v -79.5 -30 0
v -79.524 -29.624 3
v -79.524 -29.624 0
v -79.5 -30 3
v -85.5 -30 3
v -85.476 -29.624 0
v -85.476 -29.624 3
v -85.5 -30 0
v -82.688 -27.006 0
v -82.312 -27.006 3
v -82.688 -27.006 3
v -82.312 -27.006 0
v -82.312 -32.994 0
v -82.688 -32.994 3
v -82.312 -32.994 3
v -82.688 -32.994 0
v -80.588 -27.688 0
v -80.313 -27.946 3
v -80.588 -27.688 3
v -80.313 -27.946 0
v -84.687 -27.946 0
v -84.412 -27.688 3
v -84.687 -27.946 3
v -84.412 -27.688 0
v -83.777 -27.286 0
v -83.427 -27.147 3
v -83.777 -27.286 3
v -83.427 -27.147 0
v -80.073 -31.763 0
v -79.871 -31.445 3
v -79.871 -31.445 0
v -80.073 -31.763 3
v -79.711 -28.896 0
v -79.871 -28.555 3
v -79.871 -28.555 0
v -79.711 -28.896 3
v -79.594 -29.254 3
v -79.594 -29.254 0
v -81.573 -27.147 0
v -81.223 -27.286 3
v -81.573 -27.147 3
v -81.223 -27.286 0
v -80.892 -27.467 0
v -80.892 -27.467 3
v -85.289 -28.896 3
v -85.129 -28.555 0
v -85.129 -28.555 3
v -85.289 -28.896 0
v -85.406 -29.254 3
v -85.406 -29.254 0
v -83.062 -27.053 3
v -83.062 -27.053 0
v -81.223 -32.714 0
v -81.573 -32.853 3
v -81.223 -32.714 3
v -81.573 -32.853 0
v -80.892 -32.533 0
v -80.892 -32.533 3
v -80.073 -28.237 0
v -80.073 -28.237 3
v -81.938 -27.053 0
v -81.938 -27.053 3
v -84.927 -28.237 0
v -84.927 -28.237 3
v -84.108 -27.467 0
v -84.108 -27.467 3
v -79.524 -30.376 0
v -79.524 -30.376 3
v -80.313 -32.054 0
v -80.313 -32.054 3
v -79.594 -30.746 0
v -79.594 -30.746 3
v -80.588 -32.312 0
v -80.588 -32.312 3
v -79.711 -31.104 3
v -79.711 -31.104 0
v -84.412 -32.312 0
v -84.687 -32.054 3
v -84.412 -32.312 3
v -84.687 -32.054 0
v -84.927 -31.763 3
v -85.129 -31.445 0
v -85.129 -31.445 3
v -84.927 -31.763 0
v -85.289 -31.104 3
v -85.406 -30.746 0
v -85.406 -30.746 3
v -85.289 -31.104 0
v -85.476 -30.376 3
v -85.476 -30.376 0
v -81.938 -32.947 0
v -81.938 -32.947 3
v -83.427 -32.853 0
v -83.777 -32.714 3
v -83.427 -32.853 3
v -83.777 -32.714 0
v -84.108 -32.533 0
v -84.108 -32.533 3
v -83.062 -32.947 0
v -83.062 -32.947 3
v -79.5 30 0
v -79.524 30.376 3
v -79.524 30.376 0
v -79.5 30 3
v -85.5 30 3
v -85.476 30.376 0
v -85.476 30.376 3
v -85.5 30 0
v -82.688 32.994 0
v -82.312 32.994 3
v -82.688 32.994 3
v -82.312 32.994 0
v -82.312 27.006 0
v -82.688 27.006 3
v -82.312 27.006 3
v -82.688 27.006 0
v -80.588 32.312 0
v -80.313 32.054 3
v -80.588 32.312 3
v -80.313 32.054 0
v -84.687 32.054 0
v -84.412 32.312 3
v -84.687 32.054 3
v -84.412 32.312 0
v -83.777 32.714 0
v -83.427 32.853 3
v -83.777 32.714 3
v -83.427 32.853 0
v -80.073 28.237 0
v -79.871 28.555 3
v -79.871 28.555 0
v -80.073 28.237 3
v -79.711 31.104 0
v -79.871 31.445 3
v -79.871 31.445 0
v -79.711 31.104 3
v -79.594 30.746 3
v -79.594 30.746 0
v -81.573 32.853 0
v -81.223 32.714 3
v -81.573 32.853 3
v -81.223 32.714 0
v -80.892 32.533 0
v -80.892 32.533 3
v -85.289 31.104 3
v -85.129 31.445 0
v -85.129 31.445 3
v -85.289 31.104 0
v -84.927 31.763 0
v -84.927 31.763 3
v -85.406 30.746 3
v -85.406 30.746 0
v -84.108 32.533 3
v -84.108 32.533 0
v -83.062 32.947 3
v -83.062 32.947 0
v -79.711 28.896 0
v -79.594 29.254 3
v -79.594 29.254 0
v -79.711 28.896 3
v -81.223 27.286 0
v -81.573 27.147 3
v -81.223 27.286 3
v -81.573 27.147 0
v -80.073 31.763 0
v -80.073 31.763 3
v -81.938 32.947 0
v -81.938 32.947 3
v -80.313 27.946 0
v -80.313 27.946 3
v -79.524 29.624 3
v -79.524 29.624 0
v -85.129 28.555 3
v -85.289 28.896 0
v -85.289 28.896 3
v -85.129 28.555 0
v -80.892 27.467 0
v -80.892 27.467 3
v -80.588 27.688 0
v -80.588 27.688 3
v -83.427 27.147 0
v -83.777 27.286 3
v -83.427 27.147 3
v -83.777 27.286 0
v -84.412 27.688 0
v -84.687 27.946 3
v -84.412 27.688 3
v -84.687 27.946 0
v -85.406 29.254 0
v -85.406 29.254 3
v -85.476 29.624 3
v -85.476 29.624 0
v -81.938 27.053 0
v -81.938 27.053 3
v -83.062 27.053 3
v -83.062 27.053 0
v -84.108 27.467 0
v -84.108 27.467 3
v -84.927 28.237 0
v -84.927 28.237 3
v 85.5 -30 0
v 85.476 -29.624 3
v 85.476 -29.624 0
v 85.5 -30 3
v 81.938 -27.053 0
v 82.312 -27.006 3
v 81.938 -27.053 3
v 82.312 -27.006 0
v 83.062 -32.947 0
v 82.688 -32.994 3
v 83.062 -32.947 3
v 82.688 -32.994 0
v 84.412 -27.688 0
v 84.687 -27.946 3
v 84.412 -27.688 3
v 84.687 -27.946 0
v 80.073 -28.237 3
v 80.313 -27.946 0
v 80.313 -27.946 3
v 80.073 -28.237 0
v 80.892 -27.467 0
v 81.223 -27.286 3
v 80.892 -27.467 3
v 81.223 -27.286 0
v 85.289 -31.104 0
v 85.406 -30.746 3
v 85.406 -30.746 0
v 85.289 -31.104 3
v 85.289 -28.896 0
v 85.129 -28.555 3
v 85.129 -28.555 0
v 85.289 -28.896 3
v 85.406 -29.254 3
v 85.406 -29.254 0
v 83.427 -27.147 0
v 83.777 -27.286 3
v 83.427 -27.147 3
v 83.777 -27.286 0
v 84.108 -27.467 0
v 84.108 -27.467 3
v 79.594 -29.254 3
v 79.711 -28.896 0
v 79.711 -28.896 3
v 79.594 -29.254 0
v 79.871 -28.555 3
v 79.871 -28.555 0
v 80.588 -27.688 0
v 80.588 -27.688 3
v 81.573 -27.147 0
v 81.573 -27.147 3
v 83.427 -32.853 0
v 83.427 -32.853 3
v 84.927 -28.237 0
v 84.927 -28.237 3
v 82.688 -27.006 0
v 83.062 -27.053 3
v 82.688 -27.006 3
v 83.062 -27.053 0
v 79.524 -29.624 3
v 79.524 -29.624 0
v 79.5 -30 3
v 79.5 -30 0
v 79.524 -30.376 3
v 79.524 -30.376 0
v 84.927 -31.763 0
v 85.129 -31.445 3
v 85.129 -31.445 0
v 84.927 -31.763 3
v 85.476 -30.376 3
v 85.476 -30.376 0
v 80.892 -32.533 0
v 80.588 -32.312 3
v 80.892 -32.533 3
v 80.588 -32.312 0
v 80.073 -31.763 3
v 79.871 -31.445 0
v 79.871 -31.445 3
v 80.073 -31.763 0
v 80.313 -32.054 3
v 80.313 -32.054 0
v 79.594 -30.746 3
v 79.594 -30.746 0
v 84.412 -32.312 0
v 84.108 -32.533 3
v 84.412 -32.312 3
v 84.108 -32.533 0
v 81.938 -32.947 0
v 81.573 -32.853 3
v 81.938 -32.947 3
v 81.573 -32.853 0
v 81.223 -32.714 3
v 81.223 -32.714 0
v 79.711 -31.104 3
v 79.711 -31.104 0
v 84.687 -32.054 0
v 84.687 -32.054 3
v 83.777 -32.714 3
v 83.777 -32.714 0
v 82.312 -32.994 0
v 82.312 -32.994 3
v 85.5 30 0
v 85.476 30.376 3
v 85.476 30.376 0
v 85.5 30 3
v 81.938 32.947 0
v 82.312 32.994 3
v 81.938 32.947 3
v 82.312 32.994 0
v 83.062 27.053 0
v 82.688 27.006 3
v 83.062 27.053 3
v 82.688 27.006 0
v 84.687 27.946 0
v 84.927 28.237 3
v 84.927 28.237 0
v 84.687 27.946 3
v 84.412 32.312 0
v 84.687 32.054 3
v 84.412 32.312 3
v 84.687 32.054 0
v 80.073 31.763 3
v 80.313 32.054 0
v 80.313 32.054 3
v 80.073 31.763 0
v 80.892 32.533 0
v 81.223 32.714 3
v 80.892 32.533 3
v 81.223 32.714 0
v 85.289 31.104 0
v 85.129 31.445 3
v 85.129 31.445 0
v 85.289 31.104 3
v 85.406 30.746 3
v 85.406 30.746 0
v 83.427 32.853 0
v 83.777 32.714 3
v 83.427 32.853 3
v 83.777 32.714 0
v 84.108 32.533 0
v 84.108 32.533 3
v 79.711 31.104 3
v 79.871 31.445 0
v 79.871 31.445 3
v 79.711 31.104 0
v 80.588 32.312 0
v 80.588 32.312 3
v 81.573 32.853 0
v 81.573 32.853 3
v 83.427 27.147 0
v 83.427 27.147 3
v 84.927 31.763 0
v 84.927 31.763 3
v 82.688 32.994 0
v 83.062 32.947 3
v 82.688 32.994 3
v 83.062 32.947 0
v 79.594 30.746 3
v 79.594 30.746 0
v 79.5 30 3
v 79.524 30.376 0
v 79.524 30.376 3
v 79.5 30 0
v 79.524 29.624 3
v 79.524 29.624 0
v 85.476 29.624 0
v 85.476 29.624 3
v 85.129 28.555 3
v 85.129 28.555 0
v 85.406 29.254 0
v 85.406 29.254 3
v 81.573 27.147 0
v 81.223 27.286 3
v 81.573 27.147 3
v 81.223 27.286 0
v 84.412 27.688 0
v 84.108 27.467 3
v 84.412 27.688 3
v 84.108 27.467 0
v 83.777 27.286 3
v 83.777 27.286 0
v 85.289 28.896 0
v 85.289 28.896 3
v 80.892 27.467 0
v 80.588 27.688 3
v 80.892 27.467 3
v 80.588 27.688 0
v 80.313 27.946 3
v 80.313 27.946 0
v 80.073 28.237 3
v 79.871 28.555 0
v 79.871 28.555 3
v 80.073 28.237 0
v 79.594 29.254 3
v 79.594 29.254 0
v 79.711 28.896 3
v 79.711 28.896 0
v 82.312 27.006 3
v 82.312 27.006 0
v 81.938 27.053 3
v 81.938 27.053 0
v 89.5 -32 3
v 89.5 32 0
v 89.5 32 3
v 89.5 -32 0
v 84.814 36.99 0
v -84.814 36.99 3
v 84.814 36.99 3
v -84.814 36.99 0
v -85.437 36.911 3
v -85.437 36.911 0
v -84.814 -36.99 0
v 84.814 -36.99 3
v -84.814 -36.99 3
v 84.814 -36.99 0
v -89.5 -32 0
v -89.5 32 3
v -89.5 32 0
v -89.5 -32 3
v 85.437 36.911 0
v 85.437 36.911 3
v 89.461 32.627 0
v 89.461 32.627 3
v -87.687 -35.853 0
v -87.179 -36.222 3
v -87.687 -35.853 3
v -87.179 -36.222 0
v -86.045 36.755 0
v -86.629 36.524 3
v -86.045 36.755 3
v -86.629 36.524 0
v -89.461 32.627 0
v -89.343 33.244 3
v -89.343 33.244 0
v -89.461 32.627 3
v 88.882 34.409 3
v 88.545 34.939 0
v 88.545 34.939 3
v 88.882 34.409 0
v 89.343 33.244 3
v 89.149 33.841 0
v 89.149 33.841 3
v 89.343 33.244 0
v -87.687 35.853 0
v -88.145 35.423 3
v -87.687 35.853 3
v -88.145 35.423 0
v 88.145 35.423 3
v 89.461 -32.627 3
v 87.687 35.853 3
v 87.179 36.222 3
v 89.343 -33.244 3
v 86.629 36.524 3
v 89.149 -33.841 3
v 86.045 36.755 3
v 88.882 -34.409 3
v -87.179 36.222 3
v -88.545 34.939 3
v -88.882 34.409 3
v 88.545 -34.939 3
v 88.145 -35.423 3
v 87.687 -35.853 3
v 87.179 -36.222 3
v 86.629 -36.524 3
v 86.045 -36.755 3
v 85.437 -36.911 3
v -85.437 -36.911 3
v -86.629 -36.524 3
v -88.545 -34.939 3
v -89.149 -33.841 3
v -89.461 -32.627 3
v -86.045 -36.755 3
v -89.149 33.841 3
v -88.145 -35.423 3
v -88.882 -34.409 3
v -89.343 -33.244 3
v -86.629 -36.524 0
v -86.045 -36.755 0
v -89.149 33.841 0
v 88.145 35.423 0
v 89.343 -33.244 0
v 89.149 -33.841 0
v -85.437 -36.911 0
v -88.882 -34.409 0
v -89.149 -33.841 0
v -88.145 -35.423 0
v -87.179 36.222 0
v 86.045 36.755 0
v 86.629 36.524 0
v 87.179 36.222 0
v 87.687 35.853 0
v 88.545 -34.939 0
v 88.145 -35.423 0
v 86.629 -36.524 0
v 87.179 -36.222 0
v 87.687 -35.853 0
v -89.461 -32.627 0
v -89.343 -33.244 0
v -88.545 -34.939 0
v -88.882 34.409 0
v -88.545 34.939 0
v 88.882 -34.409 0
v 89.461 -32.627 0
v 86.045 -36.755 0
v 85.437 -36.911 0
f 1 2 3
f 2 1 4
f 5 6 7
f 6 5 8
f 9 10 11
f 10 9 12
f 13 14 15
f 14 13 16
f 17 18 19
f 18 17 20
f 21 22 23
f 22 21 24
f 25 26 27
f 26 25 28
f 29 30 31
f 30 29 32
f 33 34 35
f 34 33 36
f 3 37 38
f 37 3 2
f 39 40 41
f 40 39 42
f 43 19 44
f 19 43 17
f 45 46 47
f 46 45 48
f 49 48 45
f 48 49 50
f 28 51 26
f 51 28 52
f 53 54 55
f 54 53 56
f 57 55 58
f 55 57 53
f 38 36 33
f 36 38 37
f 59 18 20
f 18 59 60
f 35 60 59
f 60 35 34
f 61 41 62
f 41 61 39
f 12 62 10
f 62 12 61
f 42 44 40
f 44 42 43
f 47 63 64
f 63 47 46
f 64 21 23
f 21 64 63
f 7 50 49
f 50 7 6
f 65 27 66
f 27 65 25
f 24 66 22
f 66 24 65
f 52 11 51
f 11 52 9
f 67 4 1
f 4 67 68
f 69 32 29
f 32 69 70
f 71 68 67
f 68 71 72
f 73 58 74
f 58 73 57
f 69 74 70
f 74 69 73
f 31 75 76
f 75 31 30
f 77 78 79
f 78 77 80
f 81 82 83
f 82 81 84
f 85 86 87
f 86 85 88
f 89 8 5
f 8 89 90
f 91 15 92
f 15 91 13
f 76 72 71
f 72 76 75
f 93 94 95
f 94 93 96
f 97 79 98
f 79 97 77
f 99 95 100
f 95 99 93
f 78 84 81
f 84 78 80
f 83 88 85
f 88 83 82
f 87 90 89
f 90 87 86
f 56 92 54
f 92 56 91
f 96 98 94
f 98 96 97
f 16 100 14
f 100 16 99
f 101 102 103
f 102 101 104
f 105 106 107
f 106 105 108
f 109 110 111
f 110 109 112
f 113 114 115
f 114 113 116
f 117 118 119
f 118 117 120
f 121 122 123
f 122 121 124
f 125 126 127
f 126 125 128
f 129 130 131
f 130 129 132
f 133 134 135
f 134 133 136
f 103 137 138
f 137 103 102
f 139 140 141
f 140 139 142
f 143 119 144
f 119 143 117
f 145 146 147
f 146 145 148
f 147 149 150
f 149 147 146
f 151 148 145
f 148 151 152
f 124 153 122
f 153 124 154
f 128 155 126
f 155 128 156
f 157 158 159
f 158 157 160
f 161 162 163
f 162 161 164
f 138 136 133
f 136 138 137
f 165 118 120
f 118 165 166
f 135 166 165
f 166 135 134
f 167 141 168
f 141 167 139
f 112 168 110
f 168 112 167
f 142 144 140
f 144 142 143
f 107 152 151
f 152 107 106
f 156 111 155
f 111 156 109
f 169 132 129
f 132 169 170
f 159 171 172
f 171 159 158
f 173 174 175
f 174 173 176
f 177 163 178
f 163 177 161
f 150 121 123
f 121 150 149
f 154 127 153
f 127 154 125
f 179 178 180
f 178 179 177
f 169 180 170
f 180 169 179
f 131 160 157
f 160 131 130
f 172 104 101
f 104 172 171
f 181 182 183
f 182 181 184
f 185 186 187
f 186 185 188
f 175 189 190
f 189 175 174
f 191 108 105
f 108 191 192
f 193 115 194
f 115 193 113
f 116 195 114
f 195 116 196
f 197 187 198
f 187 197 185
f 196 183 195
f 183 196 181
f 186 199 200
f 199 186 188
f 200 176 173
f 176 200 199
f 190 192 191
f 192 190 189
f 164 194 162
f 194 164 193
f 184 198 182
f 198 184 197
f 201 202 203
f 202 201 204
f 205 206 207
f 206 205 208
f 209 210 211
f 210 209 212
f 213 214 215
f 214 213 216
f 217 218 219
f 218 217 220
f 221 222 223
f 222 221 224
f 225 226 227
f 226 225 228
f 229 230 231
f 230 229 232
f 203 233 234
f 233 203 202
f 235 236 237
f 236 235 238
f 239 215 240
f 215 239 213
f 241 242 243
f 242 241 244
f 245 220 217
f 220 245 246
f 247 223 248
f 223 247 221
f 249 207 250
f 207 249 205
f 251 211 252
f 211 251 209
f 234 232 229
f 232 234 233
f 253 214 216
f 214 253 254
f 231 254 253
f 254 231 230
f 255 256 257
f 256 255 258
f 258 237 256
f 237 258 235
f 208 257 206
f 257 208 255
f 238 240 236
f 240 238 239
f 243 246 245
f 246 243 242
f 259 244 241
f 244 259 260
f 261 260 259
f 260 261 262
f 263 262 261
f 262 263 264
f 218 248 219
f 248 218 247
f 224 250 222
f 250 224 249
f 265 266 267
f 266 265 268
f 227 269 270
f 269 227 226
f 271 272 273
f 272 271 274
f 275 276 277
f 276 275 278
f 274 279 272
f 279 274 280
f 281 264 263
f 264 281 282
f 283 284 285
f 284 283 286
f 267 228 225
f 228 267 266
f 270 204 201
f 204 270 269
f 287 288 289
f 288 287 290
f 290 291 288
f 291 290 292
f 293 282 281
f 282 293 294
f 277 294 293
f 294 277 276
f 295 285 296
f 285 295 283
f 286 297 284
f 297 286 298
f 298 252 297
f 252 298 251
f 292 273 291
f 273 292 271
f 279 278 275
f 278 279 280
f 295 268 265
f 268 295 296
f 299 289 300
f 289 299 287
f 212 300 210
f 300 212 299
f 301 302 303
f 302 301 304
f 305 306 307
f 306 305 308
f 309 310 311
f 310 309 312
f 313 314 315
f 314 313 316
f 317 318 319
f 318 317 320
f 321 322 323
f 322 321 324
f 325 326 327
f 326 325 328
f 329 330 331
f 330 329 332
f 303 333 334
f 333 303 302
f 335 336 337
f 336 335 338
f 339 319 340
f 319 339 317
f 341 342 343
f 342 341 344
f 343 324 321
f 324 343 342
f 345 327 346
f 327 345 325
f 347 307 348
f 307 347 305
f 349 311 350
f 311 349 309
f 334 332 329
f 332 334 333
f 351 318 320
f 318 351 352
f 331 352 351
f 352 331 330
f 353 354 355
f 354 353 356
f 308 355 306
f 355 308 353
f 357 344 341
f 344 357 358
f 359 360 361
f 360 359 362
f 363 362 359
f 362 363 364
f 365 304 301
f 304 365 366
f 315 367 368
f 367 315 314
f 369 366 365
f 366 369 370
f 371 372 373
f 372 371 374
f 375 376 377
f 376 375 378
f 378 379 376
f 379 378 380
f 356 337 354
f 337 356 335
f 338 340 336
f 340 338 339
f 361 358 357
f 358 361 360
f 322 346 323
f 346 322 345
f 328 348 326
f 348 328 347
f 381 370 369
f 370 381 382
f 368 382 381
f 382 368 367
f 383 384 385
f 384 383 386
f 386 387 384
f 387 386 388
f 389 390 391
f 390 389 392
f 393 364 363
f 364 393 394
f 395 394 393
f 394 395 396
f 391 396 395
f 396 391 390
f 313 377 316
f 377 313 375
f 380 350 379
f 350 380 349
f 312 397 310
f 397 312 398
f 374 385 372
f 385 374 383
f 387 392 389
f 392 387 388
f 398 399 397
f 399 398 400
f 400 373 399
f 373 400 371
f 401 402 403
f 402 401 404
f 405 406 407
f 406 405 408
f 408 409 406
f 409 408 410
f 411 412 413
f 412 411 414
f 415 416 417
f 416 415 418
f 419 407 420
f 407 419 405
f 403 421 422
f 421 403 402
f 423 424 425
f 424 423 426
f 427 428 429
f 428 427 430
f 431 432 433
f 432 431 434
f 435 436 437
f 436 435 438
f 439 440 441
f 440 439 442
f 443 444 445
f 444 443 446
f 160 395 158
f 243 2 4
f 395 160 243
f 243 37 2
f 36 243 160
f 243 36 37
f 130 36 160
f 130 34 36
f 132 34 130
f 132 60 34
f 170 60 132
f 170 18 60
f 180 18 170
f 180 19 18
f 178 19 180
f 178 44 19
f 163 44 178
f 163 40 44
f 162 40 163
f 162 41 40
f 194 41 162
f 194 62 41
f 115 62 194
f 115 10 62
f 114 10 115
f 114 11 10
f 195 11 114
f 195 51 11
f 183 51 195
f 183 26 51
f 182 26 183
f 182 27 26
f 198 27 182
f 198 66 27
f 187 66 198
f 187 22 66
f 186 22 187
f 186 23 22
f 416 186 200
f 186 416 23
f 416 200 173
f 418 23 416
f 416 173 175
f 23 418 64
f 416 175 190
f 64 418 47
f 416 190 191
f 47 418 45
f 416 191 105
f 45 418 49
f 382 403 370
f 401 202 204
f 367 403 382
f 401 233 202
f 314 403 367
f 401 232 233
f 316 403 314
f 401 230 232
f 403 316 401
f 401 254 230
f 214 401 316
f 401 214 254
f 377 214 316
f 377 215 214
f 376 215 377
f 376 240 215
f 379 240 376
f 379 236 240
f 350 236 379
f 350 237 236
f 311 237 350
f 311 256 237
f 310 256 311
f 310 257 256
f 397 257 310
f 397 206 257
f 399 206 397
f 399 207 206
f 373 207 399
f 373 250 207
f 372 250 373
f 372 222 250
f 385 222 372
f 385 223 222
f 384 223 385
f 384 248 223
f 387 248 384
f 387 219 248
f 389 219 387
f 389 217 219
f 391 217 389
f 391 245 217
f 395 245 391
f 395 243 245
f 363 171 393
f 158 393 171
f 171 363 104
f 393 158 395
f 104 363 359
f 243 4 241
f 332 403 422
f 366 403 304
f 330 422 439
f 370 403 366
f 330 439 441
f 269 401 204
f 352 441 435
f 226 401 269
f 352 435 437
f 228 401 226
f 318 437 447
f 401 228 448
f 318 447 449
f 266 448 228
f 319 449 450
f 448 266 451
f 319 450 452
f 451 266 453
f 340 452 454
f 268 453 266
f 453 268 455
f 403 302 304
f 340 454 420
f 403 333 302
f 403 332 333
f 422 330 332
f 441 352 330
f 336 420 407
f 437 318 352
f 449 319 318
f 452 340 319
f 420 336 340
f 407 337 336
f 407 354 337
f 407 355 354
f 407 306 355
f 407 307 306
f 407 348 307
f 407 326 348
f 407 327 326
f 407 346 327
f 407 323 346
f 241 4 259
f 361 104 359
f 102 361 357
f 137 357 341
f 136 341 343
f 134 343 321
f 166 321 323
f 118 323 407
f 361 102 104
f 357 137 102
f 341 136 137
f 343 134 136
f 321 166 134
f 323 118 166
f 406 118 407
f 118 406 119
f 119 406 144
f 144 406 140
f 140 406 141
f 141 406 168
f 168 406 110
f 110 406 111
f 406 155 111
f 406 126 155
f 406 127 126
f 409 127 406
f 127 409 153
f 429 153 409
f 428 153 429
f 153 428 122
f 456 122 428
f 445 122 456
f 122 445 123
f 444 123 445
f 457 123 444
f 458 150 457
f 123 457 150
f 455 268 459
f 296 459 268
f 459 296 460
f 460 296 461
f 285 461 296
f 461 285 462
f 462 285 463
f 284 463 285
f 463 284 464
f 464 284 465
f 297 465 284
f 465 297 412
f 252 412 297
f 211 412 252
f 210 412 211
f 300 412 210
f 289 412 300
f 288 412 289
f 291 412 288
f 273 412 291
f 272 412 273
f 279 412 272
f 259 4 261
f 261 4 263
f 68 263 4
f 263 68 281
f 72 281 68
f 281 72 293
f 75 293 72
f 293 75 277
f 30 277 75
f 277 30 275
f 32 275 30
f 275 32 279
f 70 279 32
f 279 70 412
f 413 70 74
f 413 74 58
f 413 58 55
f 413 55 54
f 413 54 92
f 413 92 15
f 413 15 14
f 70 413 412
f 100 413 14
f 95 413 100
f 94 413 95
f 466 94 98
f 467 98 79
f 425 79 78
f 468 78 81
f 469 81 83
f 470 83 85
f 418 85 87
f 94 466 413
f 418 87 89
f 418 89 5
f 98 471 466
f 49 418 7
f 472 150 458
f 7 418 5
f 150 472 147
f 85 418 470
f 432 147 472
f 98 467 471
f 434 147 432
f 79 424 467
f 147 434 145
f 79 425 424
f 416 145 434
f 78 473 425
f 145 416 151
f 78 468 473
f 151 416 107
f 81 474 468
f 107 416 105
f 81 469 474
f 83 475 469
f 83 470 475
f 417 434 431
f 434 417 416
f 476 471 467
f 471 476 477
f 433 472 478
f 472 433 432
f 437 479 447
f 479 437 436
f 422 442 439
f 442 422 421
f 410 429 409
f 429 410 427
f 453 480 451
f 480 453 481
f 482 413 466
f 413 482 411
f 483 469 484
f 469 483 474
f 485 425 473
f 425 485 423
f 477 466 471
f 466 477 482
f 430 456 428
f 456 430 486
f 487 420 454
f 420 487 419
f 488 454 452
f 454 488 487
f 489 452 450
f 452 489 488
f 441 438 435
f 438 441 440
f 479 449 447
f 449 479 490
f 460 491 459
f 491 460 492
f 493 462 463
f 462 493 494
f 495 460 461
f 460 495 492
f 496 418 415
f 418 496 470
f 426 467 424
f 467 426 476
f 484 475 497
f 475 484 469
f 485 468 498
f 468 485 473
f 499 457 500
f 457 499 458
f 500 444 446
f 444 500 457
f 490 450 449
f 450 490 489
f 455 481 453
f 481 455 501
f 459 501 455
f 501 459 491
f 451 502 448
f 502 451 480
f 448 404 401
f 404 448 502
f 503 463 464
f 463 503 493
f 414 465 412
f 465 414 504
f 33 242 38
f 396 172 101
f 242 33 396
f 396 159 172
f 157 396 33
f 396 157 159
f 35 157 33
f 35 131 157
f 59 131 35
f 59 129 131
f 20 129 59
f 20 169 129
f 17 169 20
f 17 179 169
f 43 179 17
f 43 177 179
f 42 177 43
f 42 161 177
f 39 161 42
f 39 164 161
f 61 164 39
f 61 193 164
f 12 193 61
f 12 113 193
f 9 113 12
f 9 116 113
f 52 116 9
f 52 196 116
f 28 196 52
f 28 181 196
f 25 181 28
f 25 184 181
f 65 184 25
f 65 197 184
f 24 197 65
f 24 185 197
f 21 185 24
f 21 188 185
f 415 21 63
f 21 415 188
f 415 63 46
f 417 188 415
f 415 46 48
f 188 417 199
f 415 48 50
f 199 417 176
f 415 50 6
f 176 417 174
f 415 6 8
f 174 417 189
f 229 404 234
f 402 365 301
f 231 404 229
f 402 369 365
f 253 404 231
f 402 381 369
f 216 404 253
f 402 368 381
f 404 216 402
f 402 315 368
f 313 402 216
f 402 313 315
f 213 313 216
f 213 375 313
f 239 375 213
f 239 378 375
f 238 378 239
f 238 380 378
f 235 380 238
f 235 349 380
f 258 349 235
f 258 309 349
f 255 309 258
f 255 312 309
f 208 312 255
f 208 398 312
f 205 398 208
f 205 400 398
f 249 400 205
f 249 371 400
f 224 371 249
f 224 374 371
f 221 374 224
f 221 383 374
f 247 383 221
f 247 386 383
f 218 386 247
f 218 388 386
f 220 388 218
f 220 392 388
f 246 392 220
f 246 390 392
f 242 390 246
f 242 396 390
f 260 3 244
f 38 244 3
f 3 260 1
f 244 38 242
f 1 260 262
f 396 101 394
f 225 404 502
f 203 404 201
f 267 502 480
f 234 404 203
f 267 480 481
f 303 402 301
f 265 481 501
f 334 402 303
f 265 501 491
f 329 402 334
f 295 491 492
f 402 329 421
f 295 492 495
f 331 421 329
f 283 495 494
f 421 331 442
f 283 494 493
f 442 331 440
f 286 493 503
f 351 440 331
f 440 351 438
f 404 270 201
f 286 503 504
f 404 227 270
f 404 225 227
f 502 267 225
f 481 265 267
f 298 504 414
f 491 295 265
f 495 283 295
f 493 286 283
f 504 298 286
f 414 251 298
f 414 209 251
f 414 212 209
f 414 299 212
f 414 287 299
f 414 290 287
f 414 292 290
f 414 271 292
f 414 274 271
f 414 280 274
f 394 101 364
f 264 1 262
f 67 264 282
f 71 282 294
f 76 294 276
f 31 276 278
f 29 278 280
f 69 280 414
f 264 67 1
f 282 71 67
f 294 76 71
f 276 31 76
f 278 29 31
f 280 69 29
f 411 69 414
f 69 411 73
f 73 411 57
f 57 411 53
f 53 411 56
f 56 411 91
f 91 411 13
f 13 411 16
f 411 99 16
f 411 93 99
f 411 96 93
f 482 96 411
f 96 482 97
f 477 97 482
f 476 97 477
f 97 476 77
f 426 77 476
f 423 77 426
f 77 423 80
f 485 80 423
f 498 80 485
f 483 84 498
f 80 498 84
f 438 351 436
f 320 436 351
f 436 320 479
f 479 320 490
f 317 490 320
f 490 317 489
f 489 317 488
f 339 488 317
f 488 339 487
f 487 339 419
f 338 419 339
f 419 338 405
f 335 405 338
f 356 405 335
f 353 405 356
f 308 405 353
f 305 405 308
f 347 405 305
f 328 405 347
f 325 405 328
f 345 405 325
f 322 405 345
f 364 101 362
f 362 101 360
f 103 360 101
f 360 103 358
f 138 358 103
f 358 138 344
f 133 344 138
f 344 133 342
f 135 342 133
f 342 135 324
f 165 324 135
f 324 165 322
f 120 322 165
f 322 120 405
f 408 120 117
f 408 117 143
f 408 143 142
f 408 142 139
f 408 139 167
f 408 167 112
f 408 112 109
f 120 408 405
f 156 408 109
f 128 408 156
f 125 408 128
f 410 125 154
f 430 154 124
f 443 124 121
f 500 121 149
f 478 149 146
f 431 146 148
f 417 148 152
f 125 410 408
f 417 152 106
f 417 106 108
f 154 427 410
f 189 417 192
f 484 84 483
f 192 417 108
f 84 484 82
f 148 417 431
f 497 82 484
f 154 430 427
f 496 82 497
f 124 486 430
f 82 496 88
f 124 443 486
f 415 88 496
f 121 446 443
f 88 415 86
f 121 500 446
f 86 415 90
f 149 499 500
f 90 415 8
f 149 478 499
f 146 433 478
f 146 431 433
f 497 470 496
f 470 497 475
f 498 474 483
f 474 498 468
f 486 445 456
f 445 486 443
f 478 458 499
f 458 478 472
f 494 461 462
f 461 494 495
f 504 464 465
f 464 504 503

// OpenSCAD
$fn = 50;


difference() {
	union() {
		hull() {
			translate(v = [-84.5000000000, 32.0000000000, 0]) {
				cylinder(h = 3, r = 5);
			}
			translate(v = [84.5000000000, 32.0000000000, 0]) {
				cylinder(h = 3, r = 5);
			}
			translate(v = [-84.5000000000, -32.0000000000, 0]) {
				cylinder(h = 3, r = 5);
			}
			translate(v = [84.5000000000, -32.0000000000, 0]) {
				cylinder(h = 3, r = 5);
			}
		}
	}
	union() {
		translate(v = [-82.5000000000, -30.0000000000, -100.0000000000]) {
			cylinder(h = 200, r = 3.0000000000);
		}
		translate(v = [-82.5000000000, 30.0000000000, -100.0000000000]) {
			cylinder(h = 200, r = 3.0000000000);
		}
		translate(v = [82.5000000000, -30.0000000000, -100.0000000000]) {
			cylinder(h = 200, r = 3.0000000000);
		}
		translate(v = [82.5000000000, 30.0000000000, -100.0000000000]) {
			cylinder(h = 200, r = 3.0000000000);
		}
	}
}
